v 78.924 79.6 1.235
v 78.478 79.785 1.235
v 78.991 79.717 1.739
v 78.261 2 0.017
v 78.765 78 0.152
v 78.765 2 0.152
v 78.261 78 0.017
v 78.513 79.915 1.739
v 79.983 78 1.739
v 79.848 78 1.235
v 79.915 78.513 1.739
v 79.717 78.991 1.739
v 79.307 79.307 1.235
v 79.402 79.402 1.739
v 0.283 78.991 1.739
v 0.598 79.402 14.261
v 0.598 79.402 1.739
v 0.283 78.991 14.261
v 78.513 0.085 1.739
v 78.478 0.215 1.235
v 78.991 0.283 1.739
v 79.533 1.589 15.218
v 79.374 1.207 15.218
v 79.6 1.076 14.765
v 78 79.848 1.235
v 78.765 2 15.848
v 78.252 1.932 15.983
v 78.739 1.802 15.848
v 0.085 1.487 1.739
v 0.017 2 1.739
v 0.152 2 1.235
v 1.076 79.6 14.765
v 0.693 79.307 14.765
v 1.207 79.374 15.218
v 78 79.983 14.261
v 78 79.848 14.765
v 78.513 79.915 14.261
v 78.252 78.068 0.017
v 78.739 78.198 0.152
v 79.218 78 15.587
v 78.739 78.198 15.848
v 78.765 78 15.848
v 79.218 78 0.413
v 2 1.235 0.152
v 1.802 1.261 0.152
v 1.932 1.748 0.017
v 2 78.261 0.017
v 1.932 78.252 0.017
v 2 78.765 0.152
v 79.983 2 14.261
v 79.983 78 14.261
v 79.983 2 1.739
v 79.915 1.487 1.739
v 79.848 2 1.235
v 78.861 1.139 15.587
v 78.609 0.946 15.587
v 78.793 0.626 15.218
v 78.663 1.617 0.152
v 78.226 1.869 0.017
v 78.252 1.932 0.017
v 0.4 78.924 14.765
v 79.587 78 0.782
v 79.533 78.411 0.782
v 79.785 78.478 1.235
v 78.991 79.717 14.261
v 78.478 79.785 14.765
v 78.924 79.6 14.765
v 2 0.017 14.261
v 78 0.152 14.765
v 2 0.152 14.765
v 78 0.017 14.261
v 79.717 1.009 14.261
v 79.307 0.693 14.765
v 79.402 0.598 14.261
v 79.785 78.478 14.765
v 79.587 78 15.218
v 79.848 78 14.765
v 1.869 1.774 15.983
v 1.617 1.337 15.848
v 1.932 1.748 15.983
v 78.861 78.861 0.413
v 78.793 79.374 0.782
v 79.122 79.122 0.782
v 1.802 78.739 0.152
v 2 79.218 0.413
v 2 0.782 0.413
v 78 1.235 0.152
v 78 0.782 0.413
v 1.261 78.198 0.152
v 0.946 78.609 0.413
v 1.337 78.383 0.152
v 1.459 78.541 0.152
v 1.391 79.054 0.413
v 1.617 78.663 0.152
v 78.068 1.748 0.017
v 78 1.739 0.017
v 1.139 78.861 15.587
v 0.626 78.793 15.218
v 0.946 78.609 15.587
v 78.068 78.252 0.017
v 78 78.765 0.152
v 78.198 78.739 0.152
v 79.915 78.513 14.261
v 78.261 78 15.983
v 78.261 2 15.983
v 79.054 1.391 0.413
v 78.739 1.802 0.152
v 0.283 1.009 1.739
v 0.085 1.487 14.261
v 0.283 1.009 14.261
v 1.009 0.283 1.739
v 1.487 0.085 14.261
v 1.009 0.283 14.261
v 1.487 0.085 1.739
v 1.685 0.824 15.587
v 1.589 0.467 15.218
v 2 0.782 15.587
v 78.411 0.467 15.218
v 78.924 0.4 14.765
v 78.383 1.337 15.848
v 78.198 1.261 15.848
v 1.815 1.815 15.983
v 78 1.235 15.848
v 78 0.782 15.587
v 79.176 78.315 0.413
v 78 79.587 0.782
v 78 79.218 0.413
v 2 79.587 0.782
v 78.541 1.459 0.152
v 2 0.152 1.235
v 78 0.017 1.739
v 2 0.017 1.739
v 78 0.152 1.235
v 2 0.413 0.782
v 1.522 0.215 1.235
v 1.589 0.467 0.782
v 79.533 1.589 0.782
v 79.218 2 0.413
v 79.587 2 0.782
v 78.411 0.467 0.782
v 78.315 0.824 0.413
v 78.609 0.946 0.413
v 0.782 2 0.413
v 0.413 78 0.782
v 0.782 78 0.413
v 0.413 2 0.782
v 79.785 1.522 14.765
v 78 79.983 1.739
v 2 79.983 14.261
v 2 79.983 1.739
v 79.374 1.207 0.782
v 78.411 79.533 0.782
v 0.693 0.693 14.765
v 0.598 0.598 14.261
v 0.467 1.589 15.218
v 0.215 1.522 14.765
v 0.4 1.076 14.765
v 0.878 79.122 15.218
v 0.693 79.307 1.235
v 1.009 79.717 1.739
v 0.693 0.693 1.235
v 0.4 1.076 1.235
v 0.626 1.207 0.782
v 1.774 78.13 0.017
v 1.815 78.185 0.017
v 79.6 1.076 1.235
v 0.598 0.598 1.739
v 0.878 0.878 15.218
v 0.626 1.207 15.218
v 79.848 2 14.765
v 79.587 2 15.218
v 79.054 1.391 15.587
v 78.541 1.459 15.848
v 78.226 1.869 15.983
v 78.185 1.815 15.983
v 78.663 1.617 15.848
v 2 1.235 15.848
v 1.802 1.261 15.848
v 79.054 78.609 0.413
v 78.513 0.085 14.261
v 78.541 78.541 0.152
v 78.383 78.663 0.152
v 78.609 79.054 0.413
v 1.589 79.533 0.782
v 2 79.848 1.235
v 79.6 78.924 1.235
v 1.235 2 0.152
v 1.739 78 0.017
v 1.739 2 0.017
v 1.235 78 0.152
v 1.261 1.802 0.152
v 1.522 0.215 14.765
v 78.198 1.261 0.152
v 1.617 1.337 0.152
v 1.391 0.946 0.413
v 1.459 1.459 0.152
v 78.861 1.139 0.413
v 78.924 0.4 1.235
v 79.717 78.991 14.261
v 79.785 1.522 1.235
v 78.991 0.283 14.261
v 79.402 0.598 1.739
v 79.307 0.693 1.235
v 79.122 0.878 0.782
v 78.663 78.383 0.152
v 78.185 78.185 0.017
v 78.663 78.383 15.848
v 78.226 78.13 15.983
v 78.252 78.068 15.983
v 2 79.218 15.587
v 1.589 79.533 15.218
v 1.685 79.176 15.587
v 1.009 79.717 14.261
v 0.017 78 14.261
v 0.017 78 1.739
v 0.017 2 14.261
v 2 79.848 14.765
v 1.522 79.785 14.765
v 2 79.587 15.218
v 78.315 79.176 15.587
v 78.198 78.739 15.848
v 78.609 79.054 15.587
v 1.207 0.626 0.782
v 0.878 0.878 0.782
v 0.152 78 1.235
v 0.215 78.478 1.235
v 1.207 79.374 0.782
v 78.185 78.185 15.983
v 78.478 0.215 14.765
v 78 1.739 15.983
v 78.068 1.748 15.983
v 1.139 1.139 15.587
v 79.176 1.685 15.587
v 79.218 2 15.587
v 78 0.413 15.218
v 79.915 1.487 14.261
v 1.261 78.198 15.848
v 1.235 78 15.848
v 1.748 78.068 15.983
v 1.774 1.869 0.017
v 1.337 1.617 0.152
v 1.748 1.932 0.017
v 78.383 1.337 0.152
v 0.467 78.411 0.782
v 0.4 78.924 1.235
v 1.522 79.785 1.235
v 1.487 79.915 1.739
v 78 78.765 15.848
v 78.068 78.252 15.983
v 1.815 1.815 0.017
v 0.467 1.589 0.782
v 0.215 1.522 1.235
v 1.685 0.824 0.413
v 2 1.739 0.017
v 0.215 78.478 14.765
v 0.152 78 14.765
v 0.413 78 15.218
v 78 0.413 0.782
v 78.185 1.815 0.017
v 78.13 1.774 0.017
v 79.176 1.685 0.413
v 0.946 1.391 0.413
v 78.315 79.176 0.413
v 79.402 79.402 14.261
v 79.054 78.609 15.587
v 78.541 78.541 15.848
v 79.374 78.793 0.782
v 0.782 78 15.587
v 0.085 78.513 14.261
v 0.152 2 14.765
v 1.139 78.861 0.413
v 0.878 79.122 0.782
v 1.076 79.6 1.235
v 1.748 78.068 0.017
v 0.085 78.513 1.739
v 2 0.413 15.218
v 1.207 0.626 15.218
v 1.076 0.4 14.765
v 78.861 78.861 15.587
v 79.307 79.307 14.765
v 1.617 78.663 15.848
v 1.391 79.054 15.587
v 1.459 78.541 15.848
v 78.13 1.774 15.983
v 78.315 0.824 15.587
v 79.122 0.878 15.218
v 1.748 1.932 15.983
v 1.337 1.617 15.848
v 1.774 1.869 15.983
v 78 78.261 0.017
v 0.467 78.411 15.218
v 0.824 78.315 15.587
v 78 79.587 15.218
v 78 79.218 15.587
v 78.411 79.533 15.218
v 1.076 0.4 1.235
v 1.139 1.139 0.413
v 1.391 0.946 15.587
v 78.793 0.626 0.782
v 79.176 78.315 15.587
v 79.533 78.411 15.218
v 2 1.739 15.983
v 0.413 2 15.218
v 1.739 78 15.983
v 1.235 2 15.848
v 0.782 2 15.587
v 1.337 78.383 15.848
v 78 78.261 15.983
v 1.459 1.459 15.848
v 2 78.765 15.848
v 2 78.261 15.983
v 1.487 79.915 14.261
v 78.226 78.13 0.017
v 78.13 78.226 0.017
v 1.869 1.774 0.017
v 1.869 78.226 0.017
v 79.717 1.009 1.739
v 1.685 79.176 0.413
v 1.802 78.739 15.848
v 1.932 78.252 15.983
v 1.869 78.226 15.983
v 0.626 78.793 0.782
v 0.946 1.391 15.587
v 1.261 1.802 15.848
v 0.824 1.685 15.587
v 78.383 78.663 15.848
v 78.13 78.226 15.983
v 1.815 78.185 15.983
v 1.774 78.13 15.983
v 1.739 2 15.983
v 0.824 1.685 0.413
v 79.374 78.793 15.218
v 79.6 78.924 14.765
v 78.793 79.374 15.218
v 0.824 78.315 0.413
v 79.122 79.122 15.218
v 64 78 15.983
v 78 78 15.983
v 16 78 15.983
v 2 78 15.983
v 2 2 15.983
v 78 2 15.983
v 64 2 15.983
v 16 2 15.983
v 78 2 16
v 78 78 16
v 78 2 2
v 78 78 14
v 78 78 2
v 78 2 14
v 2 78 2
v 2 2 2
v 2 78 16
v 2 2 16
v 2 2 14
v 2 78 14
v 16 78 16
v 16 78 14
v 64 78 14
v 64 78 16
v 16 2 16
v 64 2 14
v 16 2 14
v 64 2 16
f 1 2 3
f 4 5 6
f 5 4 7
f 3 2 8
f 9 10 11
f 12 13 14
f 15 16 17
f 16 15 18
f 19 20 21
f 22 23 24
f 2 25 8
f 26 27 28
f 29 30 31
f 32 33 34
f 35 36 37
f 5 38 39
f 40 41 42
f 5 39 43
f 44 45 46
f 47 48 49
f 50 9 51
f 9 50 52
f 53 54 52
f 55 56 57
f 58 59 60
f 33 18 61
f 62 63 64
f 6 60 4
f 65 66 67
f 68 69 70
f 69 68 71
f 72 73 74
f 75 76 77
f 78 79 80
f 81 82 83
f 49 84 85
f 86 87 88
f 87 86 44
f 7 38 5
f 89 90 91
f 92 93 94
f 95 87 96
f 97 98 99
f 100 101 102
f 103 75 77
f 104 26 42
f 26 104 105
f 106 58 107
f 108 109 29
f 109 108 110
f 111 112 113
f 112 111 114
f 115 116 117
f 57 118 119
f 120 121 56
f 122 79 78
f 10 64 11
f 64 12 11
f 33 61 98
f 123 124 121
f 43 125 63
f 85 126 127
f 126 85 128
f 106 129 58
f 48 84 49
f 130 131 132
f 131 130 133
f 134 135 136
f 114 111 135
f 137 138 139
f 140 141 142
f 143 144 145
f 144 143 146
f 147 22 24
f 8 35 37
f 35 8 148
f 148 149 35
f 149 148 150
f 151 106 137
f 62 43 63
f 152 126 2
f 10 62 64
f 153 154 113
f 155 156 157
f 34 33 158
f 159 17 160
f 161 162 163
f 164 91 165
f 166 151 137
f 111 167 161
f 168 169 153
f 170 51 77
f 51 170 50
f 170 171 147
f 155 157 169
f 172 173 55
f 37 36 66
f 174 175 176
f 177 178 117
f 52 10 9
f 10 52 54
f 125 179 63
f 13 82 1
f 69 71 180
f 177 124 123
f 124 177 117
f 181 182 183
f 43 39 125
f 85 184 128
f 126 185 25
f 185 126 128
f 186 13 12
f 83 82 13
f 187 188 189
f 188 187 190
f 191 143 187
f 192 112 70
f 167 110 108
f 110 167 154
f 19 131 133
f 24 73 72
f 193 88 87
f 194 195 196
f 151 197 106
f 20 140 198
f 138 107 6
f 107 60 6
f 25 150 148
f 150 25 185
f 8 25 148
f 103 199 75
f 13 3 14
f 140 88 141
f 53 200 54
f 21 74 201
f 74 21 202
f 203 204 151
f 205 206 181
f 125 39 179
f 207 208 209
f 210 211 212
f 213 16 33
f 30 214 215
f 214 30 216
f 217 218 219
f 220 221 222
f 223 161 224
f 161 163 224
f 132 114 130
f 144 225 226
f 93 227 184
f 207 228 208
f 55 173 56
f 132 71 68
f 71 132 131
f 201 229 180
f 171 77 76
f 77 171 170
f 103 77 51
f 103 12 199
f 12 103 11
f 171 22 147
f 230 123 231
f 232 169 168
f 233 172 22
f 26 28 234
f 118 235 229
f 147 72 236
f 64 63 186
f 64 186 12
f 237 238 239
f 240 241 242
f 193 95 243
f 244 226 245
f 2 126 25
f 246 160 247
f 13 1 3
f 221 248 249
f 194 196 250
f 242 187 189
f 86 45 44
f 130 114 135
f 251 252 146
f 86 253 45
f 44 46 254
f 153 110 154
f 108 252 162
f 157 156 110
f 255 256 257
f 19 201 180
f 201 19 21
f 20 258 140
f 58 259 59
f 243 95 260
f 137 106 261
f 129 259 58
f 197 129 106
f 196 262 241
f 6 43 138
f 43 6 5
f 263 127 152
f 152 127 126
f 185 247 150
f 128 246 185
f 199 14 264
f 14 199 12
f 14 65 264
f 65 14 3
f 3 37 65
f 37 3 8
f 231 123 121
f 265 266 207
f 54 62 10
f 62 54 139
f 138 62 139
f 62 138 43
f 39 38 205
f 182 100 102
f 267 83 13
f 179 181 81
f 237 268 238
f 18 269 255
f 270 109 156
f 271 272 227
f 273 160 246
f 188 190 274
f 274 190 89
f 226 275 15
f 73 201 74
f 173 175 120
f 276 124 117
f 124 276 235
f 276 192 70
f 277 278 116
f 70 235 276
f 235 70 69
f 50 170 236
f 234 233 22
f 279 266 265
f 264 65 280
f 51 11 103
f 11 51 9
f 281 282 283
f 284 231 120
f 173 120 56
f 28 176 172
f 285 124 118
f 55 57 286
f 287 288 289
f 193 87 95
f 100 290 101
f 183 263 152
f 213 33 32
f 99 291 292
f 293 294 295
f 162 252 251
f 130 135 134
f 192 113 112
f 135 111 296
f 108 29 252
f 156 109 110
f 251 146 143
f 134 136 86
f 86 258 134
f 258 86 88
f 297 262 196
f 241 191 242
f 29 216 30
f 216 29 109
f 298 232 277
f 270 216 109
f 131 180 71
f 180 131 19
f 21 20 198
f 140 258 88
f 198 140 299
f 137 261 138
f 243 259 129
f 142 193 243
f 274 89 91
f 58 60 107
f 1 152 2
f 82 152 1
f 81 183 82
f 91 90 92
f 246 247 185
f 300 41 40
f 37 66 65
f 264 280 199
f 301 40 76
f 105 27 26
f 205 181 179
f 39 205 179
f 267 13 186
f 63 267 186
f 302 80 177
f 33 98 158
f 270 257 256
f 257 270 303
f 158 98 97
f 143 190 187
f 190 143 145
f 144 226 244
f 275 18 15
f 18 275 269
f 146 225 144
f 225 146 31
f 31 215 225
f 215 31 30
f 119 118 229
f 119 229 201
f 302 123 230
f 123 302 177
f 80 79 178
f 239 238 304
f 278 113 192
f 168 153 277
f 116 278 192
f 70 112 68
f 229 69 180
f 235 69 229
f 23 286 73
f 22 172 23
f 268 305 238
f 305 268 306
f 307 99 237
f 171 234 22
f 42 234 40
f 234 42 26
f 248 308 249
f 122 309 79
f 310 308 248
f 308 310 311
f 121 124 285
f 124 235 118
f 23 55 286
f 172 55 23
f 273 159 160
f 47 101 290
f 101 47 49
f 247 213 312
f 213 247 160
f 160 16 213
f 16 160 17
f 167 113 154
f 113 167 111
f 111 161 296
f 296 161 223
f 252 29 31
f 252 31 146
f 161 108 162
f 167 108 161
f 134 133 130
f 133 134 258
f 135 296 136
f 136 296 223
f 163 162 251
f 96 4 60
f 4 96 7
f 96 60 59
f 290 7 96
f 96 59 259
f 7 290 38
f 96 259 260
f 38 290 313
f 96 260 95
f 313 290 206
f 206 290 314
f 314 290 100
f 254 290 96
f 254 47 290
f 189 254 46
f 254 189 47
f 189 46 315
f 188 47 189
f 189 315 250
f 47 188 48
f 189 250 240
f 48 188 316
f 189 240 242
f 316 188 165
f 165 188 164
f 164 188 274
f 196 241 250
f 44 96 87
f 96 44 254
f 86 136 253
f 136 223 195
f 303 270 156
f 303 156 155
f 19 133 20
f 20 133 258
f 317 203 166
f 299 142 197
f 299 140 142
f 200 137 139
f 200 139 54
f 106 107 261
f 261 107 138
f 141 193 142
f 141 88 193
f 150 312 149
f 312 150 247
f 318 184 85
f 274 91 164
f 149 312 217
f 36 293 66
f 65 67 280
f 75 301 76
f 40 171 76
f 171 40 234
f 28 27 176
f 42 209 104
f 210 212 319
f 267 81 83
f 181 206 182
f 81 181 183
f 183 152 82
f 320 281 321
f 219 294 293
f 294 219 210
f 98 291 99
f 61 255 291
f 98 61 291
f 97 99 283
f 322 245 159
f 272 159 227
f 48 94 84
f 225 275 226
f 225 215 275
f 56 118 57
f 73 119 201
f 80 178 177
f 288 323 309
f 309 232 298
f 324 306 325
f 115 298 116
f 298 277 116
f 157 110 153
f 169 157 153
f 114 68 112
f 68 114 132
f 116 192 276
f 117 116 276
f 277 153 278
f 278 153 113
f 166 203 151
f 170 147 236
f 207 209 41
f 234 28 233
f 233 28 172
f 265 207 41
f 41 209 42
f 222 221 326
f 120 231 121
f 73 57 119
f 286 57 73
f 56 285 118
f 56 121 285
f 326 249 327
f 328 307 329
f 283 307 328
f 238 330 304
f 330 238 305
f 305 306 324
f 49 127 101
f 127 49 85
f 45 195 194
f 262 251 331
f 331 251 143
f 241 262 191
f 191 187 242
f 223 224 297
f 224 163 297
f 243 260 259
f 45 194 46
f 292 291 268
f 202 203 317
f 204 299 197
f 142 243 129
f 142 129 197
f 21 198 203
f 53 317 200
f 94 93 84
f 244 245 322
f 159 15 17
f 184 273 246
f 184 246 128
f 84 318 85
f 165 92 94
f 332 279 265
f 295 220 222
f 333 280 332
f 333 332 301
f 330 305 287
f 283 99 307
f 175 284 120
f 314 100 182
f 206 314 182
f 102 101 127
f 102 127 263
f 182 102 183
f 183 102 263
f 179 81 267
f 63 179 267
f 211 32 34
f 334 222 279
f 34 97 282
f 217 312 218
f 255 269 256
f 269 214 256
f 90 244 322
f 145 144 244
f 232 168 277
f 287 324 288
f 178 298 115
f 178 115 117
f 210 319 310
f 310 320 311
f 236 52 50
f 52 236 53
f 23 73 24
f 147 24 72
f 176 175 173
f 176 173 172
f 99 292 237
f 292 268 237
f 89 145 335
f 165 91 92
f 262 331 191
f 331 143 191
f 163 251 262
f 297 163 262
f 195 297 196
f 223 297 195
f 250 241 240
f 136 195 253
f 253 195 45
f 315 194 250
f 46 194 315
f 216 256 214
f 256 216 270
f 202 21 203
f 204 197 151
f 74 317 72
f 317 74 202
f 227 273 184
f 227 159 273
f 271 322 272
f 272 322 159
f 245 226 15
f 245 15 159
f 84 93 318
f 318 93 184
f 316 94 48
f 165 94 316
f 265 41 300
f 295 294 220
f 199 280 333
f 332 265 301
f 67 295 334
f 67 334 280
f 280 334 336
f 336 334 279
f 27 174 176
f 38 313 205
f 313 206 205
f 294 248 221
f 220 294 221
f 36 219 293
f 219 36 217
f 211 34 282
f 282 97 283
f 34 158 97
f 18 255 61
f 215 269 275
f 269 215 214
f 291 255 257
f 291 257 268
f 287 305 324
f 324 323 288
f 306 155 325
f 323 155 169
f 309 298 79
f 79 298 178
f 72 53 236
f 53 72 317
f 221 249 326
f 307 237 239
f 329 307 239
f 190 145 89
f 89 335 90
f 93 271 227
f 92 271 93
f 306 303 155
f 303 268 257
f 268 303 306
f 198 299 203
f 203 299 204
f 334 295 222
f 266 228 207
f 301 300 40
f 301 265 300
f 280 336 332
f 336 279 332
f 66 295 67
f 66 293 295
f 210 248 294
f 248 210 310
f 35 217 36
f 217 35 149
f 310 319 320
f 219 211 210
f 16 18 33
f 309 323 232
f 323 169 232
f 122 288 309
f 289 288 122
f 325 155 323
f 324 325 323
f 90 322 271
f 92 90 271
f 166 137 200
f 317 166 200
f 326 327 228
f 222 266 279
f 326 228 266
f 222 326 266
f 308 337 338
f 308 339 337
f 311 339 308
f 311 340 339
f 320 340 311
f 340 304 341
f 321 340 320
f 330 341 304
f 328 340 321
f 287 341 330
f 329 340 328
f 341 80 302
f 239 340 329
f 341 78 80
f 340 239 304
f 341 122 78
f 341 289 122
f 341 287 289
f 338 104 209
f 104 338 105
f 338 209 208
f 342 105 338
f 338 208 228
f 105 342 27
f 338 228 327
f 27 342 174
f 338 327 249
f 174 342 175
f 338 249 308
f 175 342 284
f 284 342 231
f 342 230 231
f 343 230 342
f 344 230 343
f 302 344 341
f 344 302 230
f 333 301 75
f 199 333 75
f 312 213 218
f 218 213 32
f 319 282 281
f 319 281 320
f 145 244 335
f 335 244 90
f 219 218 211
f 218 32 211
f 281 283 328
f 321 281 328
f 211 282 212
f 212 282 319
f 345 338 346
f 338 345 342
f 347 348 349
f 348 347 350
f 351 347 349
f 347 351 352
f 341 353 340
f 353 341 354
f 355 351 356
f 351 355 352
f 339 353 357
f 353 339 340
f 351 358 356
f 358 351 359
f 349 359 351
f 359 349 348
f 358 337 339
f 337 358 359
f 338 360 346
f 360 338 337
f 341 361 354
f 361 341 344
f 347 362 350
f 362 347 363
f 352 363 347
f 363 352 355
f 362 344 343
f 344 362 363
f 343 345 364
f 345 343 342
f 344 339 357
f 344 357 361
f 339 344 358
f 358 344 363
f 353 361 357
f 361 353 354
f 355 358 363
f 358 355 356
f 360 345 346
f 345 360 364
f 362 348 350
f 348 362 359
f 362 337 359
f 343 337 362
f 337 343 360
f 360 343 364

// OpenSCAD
width = 80;
depth = 80;
base_thickness = 2;
border_width = 2;
border_depth = 16;
tape_pad_width = 14;
tape_pad_thickness = 2;
tape_recess_depth = 0;
tape_margin = border_width;
tape_inset = border_width;
corner_radius = 2;
$fn = 24;

module rounded_box(size, radius) {
  translate([radius, radius, radius])
    minkowski() {
      cube([
        size[0] - 2 * radius,
        size[1] - 2 * radius,
        size[2] - 2 * radius
      ]);
      sphere(radius);
    }
}

union() {
  difference() {
    rounded_box([width, depth, border_depth], corner_radius);

    translate([border_width, border_width, base_thickness])
      cube([
        width - 2 * border_width,
        depth - 2 * border_width,
        border_depth - base_thickness + 1
      ]);
  }

  translate([
    tape_inset,
    tape_margin,
    border_depth - tape_recess_depth - tape_pad_thickness
  ])
    cube([
      tape_pad_width,
      depth - 2 * tape_margin,
      tape_pad_thickness
    ]);

  translate([
    width - tape_inset - tape_pad_width,
    tape_margin,
    border_depth - tape_recess_depth - tape_pad_thickness
  ])
    cube([
      tape_pad_width,
      depth - 2 * tape_margin,
      tape_pad_thickness
    ]);
}
